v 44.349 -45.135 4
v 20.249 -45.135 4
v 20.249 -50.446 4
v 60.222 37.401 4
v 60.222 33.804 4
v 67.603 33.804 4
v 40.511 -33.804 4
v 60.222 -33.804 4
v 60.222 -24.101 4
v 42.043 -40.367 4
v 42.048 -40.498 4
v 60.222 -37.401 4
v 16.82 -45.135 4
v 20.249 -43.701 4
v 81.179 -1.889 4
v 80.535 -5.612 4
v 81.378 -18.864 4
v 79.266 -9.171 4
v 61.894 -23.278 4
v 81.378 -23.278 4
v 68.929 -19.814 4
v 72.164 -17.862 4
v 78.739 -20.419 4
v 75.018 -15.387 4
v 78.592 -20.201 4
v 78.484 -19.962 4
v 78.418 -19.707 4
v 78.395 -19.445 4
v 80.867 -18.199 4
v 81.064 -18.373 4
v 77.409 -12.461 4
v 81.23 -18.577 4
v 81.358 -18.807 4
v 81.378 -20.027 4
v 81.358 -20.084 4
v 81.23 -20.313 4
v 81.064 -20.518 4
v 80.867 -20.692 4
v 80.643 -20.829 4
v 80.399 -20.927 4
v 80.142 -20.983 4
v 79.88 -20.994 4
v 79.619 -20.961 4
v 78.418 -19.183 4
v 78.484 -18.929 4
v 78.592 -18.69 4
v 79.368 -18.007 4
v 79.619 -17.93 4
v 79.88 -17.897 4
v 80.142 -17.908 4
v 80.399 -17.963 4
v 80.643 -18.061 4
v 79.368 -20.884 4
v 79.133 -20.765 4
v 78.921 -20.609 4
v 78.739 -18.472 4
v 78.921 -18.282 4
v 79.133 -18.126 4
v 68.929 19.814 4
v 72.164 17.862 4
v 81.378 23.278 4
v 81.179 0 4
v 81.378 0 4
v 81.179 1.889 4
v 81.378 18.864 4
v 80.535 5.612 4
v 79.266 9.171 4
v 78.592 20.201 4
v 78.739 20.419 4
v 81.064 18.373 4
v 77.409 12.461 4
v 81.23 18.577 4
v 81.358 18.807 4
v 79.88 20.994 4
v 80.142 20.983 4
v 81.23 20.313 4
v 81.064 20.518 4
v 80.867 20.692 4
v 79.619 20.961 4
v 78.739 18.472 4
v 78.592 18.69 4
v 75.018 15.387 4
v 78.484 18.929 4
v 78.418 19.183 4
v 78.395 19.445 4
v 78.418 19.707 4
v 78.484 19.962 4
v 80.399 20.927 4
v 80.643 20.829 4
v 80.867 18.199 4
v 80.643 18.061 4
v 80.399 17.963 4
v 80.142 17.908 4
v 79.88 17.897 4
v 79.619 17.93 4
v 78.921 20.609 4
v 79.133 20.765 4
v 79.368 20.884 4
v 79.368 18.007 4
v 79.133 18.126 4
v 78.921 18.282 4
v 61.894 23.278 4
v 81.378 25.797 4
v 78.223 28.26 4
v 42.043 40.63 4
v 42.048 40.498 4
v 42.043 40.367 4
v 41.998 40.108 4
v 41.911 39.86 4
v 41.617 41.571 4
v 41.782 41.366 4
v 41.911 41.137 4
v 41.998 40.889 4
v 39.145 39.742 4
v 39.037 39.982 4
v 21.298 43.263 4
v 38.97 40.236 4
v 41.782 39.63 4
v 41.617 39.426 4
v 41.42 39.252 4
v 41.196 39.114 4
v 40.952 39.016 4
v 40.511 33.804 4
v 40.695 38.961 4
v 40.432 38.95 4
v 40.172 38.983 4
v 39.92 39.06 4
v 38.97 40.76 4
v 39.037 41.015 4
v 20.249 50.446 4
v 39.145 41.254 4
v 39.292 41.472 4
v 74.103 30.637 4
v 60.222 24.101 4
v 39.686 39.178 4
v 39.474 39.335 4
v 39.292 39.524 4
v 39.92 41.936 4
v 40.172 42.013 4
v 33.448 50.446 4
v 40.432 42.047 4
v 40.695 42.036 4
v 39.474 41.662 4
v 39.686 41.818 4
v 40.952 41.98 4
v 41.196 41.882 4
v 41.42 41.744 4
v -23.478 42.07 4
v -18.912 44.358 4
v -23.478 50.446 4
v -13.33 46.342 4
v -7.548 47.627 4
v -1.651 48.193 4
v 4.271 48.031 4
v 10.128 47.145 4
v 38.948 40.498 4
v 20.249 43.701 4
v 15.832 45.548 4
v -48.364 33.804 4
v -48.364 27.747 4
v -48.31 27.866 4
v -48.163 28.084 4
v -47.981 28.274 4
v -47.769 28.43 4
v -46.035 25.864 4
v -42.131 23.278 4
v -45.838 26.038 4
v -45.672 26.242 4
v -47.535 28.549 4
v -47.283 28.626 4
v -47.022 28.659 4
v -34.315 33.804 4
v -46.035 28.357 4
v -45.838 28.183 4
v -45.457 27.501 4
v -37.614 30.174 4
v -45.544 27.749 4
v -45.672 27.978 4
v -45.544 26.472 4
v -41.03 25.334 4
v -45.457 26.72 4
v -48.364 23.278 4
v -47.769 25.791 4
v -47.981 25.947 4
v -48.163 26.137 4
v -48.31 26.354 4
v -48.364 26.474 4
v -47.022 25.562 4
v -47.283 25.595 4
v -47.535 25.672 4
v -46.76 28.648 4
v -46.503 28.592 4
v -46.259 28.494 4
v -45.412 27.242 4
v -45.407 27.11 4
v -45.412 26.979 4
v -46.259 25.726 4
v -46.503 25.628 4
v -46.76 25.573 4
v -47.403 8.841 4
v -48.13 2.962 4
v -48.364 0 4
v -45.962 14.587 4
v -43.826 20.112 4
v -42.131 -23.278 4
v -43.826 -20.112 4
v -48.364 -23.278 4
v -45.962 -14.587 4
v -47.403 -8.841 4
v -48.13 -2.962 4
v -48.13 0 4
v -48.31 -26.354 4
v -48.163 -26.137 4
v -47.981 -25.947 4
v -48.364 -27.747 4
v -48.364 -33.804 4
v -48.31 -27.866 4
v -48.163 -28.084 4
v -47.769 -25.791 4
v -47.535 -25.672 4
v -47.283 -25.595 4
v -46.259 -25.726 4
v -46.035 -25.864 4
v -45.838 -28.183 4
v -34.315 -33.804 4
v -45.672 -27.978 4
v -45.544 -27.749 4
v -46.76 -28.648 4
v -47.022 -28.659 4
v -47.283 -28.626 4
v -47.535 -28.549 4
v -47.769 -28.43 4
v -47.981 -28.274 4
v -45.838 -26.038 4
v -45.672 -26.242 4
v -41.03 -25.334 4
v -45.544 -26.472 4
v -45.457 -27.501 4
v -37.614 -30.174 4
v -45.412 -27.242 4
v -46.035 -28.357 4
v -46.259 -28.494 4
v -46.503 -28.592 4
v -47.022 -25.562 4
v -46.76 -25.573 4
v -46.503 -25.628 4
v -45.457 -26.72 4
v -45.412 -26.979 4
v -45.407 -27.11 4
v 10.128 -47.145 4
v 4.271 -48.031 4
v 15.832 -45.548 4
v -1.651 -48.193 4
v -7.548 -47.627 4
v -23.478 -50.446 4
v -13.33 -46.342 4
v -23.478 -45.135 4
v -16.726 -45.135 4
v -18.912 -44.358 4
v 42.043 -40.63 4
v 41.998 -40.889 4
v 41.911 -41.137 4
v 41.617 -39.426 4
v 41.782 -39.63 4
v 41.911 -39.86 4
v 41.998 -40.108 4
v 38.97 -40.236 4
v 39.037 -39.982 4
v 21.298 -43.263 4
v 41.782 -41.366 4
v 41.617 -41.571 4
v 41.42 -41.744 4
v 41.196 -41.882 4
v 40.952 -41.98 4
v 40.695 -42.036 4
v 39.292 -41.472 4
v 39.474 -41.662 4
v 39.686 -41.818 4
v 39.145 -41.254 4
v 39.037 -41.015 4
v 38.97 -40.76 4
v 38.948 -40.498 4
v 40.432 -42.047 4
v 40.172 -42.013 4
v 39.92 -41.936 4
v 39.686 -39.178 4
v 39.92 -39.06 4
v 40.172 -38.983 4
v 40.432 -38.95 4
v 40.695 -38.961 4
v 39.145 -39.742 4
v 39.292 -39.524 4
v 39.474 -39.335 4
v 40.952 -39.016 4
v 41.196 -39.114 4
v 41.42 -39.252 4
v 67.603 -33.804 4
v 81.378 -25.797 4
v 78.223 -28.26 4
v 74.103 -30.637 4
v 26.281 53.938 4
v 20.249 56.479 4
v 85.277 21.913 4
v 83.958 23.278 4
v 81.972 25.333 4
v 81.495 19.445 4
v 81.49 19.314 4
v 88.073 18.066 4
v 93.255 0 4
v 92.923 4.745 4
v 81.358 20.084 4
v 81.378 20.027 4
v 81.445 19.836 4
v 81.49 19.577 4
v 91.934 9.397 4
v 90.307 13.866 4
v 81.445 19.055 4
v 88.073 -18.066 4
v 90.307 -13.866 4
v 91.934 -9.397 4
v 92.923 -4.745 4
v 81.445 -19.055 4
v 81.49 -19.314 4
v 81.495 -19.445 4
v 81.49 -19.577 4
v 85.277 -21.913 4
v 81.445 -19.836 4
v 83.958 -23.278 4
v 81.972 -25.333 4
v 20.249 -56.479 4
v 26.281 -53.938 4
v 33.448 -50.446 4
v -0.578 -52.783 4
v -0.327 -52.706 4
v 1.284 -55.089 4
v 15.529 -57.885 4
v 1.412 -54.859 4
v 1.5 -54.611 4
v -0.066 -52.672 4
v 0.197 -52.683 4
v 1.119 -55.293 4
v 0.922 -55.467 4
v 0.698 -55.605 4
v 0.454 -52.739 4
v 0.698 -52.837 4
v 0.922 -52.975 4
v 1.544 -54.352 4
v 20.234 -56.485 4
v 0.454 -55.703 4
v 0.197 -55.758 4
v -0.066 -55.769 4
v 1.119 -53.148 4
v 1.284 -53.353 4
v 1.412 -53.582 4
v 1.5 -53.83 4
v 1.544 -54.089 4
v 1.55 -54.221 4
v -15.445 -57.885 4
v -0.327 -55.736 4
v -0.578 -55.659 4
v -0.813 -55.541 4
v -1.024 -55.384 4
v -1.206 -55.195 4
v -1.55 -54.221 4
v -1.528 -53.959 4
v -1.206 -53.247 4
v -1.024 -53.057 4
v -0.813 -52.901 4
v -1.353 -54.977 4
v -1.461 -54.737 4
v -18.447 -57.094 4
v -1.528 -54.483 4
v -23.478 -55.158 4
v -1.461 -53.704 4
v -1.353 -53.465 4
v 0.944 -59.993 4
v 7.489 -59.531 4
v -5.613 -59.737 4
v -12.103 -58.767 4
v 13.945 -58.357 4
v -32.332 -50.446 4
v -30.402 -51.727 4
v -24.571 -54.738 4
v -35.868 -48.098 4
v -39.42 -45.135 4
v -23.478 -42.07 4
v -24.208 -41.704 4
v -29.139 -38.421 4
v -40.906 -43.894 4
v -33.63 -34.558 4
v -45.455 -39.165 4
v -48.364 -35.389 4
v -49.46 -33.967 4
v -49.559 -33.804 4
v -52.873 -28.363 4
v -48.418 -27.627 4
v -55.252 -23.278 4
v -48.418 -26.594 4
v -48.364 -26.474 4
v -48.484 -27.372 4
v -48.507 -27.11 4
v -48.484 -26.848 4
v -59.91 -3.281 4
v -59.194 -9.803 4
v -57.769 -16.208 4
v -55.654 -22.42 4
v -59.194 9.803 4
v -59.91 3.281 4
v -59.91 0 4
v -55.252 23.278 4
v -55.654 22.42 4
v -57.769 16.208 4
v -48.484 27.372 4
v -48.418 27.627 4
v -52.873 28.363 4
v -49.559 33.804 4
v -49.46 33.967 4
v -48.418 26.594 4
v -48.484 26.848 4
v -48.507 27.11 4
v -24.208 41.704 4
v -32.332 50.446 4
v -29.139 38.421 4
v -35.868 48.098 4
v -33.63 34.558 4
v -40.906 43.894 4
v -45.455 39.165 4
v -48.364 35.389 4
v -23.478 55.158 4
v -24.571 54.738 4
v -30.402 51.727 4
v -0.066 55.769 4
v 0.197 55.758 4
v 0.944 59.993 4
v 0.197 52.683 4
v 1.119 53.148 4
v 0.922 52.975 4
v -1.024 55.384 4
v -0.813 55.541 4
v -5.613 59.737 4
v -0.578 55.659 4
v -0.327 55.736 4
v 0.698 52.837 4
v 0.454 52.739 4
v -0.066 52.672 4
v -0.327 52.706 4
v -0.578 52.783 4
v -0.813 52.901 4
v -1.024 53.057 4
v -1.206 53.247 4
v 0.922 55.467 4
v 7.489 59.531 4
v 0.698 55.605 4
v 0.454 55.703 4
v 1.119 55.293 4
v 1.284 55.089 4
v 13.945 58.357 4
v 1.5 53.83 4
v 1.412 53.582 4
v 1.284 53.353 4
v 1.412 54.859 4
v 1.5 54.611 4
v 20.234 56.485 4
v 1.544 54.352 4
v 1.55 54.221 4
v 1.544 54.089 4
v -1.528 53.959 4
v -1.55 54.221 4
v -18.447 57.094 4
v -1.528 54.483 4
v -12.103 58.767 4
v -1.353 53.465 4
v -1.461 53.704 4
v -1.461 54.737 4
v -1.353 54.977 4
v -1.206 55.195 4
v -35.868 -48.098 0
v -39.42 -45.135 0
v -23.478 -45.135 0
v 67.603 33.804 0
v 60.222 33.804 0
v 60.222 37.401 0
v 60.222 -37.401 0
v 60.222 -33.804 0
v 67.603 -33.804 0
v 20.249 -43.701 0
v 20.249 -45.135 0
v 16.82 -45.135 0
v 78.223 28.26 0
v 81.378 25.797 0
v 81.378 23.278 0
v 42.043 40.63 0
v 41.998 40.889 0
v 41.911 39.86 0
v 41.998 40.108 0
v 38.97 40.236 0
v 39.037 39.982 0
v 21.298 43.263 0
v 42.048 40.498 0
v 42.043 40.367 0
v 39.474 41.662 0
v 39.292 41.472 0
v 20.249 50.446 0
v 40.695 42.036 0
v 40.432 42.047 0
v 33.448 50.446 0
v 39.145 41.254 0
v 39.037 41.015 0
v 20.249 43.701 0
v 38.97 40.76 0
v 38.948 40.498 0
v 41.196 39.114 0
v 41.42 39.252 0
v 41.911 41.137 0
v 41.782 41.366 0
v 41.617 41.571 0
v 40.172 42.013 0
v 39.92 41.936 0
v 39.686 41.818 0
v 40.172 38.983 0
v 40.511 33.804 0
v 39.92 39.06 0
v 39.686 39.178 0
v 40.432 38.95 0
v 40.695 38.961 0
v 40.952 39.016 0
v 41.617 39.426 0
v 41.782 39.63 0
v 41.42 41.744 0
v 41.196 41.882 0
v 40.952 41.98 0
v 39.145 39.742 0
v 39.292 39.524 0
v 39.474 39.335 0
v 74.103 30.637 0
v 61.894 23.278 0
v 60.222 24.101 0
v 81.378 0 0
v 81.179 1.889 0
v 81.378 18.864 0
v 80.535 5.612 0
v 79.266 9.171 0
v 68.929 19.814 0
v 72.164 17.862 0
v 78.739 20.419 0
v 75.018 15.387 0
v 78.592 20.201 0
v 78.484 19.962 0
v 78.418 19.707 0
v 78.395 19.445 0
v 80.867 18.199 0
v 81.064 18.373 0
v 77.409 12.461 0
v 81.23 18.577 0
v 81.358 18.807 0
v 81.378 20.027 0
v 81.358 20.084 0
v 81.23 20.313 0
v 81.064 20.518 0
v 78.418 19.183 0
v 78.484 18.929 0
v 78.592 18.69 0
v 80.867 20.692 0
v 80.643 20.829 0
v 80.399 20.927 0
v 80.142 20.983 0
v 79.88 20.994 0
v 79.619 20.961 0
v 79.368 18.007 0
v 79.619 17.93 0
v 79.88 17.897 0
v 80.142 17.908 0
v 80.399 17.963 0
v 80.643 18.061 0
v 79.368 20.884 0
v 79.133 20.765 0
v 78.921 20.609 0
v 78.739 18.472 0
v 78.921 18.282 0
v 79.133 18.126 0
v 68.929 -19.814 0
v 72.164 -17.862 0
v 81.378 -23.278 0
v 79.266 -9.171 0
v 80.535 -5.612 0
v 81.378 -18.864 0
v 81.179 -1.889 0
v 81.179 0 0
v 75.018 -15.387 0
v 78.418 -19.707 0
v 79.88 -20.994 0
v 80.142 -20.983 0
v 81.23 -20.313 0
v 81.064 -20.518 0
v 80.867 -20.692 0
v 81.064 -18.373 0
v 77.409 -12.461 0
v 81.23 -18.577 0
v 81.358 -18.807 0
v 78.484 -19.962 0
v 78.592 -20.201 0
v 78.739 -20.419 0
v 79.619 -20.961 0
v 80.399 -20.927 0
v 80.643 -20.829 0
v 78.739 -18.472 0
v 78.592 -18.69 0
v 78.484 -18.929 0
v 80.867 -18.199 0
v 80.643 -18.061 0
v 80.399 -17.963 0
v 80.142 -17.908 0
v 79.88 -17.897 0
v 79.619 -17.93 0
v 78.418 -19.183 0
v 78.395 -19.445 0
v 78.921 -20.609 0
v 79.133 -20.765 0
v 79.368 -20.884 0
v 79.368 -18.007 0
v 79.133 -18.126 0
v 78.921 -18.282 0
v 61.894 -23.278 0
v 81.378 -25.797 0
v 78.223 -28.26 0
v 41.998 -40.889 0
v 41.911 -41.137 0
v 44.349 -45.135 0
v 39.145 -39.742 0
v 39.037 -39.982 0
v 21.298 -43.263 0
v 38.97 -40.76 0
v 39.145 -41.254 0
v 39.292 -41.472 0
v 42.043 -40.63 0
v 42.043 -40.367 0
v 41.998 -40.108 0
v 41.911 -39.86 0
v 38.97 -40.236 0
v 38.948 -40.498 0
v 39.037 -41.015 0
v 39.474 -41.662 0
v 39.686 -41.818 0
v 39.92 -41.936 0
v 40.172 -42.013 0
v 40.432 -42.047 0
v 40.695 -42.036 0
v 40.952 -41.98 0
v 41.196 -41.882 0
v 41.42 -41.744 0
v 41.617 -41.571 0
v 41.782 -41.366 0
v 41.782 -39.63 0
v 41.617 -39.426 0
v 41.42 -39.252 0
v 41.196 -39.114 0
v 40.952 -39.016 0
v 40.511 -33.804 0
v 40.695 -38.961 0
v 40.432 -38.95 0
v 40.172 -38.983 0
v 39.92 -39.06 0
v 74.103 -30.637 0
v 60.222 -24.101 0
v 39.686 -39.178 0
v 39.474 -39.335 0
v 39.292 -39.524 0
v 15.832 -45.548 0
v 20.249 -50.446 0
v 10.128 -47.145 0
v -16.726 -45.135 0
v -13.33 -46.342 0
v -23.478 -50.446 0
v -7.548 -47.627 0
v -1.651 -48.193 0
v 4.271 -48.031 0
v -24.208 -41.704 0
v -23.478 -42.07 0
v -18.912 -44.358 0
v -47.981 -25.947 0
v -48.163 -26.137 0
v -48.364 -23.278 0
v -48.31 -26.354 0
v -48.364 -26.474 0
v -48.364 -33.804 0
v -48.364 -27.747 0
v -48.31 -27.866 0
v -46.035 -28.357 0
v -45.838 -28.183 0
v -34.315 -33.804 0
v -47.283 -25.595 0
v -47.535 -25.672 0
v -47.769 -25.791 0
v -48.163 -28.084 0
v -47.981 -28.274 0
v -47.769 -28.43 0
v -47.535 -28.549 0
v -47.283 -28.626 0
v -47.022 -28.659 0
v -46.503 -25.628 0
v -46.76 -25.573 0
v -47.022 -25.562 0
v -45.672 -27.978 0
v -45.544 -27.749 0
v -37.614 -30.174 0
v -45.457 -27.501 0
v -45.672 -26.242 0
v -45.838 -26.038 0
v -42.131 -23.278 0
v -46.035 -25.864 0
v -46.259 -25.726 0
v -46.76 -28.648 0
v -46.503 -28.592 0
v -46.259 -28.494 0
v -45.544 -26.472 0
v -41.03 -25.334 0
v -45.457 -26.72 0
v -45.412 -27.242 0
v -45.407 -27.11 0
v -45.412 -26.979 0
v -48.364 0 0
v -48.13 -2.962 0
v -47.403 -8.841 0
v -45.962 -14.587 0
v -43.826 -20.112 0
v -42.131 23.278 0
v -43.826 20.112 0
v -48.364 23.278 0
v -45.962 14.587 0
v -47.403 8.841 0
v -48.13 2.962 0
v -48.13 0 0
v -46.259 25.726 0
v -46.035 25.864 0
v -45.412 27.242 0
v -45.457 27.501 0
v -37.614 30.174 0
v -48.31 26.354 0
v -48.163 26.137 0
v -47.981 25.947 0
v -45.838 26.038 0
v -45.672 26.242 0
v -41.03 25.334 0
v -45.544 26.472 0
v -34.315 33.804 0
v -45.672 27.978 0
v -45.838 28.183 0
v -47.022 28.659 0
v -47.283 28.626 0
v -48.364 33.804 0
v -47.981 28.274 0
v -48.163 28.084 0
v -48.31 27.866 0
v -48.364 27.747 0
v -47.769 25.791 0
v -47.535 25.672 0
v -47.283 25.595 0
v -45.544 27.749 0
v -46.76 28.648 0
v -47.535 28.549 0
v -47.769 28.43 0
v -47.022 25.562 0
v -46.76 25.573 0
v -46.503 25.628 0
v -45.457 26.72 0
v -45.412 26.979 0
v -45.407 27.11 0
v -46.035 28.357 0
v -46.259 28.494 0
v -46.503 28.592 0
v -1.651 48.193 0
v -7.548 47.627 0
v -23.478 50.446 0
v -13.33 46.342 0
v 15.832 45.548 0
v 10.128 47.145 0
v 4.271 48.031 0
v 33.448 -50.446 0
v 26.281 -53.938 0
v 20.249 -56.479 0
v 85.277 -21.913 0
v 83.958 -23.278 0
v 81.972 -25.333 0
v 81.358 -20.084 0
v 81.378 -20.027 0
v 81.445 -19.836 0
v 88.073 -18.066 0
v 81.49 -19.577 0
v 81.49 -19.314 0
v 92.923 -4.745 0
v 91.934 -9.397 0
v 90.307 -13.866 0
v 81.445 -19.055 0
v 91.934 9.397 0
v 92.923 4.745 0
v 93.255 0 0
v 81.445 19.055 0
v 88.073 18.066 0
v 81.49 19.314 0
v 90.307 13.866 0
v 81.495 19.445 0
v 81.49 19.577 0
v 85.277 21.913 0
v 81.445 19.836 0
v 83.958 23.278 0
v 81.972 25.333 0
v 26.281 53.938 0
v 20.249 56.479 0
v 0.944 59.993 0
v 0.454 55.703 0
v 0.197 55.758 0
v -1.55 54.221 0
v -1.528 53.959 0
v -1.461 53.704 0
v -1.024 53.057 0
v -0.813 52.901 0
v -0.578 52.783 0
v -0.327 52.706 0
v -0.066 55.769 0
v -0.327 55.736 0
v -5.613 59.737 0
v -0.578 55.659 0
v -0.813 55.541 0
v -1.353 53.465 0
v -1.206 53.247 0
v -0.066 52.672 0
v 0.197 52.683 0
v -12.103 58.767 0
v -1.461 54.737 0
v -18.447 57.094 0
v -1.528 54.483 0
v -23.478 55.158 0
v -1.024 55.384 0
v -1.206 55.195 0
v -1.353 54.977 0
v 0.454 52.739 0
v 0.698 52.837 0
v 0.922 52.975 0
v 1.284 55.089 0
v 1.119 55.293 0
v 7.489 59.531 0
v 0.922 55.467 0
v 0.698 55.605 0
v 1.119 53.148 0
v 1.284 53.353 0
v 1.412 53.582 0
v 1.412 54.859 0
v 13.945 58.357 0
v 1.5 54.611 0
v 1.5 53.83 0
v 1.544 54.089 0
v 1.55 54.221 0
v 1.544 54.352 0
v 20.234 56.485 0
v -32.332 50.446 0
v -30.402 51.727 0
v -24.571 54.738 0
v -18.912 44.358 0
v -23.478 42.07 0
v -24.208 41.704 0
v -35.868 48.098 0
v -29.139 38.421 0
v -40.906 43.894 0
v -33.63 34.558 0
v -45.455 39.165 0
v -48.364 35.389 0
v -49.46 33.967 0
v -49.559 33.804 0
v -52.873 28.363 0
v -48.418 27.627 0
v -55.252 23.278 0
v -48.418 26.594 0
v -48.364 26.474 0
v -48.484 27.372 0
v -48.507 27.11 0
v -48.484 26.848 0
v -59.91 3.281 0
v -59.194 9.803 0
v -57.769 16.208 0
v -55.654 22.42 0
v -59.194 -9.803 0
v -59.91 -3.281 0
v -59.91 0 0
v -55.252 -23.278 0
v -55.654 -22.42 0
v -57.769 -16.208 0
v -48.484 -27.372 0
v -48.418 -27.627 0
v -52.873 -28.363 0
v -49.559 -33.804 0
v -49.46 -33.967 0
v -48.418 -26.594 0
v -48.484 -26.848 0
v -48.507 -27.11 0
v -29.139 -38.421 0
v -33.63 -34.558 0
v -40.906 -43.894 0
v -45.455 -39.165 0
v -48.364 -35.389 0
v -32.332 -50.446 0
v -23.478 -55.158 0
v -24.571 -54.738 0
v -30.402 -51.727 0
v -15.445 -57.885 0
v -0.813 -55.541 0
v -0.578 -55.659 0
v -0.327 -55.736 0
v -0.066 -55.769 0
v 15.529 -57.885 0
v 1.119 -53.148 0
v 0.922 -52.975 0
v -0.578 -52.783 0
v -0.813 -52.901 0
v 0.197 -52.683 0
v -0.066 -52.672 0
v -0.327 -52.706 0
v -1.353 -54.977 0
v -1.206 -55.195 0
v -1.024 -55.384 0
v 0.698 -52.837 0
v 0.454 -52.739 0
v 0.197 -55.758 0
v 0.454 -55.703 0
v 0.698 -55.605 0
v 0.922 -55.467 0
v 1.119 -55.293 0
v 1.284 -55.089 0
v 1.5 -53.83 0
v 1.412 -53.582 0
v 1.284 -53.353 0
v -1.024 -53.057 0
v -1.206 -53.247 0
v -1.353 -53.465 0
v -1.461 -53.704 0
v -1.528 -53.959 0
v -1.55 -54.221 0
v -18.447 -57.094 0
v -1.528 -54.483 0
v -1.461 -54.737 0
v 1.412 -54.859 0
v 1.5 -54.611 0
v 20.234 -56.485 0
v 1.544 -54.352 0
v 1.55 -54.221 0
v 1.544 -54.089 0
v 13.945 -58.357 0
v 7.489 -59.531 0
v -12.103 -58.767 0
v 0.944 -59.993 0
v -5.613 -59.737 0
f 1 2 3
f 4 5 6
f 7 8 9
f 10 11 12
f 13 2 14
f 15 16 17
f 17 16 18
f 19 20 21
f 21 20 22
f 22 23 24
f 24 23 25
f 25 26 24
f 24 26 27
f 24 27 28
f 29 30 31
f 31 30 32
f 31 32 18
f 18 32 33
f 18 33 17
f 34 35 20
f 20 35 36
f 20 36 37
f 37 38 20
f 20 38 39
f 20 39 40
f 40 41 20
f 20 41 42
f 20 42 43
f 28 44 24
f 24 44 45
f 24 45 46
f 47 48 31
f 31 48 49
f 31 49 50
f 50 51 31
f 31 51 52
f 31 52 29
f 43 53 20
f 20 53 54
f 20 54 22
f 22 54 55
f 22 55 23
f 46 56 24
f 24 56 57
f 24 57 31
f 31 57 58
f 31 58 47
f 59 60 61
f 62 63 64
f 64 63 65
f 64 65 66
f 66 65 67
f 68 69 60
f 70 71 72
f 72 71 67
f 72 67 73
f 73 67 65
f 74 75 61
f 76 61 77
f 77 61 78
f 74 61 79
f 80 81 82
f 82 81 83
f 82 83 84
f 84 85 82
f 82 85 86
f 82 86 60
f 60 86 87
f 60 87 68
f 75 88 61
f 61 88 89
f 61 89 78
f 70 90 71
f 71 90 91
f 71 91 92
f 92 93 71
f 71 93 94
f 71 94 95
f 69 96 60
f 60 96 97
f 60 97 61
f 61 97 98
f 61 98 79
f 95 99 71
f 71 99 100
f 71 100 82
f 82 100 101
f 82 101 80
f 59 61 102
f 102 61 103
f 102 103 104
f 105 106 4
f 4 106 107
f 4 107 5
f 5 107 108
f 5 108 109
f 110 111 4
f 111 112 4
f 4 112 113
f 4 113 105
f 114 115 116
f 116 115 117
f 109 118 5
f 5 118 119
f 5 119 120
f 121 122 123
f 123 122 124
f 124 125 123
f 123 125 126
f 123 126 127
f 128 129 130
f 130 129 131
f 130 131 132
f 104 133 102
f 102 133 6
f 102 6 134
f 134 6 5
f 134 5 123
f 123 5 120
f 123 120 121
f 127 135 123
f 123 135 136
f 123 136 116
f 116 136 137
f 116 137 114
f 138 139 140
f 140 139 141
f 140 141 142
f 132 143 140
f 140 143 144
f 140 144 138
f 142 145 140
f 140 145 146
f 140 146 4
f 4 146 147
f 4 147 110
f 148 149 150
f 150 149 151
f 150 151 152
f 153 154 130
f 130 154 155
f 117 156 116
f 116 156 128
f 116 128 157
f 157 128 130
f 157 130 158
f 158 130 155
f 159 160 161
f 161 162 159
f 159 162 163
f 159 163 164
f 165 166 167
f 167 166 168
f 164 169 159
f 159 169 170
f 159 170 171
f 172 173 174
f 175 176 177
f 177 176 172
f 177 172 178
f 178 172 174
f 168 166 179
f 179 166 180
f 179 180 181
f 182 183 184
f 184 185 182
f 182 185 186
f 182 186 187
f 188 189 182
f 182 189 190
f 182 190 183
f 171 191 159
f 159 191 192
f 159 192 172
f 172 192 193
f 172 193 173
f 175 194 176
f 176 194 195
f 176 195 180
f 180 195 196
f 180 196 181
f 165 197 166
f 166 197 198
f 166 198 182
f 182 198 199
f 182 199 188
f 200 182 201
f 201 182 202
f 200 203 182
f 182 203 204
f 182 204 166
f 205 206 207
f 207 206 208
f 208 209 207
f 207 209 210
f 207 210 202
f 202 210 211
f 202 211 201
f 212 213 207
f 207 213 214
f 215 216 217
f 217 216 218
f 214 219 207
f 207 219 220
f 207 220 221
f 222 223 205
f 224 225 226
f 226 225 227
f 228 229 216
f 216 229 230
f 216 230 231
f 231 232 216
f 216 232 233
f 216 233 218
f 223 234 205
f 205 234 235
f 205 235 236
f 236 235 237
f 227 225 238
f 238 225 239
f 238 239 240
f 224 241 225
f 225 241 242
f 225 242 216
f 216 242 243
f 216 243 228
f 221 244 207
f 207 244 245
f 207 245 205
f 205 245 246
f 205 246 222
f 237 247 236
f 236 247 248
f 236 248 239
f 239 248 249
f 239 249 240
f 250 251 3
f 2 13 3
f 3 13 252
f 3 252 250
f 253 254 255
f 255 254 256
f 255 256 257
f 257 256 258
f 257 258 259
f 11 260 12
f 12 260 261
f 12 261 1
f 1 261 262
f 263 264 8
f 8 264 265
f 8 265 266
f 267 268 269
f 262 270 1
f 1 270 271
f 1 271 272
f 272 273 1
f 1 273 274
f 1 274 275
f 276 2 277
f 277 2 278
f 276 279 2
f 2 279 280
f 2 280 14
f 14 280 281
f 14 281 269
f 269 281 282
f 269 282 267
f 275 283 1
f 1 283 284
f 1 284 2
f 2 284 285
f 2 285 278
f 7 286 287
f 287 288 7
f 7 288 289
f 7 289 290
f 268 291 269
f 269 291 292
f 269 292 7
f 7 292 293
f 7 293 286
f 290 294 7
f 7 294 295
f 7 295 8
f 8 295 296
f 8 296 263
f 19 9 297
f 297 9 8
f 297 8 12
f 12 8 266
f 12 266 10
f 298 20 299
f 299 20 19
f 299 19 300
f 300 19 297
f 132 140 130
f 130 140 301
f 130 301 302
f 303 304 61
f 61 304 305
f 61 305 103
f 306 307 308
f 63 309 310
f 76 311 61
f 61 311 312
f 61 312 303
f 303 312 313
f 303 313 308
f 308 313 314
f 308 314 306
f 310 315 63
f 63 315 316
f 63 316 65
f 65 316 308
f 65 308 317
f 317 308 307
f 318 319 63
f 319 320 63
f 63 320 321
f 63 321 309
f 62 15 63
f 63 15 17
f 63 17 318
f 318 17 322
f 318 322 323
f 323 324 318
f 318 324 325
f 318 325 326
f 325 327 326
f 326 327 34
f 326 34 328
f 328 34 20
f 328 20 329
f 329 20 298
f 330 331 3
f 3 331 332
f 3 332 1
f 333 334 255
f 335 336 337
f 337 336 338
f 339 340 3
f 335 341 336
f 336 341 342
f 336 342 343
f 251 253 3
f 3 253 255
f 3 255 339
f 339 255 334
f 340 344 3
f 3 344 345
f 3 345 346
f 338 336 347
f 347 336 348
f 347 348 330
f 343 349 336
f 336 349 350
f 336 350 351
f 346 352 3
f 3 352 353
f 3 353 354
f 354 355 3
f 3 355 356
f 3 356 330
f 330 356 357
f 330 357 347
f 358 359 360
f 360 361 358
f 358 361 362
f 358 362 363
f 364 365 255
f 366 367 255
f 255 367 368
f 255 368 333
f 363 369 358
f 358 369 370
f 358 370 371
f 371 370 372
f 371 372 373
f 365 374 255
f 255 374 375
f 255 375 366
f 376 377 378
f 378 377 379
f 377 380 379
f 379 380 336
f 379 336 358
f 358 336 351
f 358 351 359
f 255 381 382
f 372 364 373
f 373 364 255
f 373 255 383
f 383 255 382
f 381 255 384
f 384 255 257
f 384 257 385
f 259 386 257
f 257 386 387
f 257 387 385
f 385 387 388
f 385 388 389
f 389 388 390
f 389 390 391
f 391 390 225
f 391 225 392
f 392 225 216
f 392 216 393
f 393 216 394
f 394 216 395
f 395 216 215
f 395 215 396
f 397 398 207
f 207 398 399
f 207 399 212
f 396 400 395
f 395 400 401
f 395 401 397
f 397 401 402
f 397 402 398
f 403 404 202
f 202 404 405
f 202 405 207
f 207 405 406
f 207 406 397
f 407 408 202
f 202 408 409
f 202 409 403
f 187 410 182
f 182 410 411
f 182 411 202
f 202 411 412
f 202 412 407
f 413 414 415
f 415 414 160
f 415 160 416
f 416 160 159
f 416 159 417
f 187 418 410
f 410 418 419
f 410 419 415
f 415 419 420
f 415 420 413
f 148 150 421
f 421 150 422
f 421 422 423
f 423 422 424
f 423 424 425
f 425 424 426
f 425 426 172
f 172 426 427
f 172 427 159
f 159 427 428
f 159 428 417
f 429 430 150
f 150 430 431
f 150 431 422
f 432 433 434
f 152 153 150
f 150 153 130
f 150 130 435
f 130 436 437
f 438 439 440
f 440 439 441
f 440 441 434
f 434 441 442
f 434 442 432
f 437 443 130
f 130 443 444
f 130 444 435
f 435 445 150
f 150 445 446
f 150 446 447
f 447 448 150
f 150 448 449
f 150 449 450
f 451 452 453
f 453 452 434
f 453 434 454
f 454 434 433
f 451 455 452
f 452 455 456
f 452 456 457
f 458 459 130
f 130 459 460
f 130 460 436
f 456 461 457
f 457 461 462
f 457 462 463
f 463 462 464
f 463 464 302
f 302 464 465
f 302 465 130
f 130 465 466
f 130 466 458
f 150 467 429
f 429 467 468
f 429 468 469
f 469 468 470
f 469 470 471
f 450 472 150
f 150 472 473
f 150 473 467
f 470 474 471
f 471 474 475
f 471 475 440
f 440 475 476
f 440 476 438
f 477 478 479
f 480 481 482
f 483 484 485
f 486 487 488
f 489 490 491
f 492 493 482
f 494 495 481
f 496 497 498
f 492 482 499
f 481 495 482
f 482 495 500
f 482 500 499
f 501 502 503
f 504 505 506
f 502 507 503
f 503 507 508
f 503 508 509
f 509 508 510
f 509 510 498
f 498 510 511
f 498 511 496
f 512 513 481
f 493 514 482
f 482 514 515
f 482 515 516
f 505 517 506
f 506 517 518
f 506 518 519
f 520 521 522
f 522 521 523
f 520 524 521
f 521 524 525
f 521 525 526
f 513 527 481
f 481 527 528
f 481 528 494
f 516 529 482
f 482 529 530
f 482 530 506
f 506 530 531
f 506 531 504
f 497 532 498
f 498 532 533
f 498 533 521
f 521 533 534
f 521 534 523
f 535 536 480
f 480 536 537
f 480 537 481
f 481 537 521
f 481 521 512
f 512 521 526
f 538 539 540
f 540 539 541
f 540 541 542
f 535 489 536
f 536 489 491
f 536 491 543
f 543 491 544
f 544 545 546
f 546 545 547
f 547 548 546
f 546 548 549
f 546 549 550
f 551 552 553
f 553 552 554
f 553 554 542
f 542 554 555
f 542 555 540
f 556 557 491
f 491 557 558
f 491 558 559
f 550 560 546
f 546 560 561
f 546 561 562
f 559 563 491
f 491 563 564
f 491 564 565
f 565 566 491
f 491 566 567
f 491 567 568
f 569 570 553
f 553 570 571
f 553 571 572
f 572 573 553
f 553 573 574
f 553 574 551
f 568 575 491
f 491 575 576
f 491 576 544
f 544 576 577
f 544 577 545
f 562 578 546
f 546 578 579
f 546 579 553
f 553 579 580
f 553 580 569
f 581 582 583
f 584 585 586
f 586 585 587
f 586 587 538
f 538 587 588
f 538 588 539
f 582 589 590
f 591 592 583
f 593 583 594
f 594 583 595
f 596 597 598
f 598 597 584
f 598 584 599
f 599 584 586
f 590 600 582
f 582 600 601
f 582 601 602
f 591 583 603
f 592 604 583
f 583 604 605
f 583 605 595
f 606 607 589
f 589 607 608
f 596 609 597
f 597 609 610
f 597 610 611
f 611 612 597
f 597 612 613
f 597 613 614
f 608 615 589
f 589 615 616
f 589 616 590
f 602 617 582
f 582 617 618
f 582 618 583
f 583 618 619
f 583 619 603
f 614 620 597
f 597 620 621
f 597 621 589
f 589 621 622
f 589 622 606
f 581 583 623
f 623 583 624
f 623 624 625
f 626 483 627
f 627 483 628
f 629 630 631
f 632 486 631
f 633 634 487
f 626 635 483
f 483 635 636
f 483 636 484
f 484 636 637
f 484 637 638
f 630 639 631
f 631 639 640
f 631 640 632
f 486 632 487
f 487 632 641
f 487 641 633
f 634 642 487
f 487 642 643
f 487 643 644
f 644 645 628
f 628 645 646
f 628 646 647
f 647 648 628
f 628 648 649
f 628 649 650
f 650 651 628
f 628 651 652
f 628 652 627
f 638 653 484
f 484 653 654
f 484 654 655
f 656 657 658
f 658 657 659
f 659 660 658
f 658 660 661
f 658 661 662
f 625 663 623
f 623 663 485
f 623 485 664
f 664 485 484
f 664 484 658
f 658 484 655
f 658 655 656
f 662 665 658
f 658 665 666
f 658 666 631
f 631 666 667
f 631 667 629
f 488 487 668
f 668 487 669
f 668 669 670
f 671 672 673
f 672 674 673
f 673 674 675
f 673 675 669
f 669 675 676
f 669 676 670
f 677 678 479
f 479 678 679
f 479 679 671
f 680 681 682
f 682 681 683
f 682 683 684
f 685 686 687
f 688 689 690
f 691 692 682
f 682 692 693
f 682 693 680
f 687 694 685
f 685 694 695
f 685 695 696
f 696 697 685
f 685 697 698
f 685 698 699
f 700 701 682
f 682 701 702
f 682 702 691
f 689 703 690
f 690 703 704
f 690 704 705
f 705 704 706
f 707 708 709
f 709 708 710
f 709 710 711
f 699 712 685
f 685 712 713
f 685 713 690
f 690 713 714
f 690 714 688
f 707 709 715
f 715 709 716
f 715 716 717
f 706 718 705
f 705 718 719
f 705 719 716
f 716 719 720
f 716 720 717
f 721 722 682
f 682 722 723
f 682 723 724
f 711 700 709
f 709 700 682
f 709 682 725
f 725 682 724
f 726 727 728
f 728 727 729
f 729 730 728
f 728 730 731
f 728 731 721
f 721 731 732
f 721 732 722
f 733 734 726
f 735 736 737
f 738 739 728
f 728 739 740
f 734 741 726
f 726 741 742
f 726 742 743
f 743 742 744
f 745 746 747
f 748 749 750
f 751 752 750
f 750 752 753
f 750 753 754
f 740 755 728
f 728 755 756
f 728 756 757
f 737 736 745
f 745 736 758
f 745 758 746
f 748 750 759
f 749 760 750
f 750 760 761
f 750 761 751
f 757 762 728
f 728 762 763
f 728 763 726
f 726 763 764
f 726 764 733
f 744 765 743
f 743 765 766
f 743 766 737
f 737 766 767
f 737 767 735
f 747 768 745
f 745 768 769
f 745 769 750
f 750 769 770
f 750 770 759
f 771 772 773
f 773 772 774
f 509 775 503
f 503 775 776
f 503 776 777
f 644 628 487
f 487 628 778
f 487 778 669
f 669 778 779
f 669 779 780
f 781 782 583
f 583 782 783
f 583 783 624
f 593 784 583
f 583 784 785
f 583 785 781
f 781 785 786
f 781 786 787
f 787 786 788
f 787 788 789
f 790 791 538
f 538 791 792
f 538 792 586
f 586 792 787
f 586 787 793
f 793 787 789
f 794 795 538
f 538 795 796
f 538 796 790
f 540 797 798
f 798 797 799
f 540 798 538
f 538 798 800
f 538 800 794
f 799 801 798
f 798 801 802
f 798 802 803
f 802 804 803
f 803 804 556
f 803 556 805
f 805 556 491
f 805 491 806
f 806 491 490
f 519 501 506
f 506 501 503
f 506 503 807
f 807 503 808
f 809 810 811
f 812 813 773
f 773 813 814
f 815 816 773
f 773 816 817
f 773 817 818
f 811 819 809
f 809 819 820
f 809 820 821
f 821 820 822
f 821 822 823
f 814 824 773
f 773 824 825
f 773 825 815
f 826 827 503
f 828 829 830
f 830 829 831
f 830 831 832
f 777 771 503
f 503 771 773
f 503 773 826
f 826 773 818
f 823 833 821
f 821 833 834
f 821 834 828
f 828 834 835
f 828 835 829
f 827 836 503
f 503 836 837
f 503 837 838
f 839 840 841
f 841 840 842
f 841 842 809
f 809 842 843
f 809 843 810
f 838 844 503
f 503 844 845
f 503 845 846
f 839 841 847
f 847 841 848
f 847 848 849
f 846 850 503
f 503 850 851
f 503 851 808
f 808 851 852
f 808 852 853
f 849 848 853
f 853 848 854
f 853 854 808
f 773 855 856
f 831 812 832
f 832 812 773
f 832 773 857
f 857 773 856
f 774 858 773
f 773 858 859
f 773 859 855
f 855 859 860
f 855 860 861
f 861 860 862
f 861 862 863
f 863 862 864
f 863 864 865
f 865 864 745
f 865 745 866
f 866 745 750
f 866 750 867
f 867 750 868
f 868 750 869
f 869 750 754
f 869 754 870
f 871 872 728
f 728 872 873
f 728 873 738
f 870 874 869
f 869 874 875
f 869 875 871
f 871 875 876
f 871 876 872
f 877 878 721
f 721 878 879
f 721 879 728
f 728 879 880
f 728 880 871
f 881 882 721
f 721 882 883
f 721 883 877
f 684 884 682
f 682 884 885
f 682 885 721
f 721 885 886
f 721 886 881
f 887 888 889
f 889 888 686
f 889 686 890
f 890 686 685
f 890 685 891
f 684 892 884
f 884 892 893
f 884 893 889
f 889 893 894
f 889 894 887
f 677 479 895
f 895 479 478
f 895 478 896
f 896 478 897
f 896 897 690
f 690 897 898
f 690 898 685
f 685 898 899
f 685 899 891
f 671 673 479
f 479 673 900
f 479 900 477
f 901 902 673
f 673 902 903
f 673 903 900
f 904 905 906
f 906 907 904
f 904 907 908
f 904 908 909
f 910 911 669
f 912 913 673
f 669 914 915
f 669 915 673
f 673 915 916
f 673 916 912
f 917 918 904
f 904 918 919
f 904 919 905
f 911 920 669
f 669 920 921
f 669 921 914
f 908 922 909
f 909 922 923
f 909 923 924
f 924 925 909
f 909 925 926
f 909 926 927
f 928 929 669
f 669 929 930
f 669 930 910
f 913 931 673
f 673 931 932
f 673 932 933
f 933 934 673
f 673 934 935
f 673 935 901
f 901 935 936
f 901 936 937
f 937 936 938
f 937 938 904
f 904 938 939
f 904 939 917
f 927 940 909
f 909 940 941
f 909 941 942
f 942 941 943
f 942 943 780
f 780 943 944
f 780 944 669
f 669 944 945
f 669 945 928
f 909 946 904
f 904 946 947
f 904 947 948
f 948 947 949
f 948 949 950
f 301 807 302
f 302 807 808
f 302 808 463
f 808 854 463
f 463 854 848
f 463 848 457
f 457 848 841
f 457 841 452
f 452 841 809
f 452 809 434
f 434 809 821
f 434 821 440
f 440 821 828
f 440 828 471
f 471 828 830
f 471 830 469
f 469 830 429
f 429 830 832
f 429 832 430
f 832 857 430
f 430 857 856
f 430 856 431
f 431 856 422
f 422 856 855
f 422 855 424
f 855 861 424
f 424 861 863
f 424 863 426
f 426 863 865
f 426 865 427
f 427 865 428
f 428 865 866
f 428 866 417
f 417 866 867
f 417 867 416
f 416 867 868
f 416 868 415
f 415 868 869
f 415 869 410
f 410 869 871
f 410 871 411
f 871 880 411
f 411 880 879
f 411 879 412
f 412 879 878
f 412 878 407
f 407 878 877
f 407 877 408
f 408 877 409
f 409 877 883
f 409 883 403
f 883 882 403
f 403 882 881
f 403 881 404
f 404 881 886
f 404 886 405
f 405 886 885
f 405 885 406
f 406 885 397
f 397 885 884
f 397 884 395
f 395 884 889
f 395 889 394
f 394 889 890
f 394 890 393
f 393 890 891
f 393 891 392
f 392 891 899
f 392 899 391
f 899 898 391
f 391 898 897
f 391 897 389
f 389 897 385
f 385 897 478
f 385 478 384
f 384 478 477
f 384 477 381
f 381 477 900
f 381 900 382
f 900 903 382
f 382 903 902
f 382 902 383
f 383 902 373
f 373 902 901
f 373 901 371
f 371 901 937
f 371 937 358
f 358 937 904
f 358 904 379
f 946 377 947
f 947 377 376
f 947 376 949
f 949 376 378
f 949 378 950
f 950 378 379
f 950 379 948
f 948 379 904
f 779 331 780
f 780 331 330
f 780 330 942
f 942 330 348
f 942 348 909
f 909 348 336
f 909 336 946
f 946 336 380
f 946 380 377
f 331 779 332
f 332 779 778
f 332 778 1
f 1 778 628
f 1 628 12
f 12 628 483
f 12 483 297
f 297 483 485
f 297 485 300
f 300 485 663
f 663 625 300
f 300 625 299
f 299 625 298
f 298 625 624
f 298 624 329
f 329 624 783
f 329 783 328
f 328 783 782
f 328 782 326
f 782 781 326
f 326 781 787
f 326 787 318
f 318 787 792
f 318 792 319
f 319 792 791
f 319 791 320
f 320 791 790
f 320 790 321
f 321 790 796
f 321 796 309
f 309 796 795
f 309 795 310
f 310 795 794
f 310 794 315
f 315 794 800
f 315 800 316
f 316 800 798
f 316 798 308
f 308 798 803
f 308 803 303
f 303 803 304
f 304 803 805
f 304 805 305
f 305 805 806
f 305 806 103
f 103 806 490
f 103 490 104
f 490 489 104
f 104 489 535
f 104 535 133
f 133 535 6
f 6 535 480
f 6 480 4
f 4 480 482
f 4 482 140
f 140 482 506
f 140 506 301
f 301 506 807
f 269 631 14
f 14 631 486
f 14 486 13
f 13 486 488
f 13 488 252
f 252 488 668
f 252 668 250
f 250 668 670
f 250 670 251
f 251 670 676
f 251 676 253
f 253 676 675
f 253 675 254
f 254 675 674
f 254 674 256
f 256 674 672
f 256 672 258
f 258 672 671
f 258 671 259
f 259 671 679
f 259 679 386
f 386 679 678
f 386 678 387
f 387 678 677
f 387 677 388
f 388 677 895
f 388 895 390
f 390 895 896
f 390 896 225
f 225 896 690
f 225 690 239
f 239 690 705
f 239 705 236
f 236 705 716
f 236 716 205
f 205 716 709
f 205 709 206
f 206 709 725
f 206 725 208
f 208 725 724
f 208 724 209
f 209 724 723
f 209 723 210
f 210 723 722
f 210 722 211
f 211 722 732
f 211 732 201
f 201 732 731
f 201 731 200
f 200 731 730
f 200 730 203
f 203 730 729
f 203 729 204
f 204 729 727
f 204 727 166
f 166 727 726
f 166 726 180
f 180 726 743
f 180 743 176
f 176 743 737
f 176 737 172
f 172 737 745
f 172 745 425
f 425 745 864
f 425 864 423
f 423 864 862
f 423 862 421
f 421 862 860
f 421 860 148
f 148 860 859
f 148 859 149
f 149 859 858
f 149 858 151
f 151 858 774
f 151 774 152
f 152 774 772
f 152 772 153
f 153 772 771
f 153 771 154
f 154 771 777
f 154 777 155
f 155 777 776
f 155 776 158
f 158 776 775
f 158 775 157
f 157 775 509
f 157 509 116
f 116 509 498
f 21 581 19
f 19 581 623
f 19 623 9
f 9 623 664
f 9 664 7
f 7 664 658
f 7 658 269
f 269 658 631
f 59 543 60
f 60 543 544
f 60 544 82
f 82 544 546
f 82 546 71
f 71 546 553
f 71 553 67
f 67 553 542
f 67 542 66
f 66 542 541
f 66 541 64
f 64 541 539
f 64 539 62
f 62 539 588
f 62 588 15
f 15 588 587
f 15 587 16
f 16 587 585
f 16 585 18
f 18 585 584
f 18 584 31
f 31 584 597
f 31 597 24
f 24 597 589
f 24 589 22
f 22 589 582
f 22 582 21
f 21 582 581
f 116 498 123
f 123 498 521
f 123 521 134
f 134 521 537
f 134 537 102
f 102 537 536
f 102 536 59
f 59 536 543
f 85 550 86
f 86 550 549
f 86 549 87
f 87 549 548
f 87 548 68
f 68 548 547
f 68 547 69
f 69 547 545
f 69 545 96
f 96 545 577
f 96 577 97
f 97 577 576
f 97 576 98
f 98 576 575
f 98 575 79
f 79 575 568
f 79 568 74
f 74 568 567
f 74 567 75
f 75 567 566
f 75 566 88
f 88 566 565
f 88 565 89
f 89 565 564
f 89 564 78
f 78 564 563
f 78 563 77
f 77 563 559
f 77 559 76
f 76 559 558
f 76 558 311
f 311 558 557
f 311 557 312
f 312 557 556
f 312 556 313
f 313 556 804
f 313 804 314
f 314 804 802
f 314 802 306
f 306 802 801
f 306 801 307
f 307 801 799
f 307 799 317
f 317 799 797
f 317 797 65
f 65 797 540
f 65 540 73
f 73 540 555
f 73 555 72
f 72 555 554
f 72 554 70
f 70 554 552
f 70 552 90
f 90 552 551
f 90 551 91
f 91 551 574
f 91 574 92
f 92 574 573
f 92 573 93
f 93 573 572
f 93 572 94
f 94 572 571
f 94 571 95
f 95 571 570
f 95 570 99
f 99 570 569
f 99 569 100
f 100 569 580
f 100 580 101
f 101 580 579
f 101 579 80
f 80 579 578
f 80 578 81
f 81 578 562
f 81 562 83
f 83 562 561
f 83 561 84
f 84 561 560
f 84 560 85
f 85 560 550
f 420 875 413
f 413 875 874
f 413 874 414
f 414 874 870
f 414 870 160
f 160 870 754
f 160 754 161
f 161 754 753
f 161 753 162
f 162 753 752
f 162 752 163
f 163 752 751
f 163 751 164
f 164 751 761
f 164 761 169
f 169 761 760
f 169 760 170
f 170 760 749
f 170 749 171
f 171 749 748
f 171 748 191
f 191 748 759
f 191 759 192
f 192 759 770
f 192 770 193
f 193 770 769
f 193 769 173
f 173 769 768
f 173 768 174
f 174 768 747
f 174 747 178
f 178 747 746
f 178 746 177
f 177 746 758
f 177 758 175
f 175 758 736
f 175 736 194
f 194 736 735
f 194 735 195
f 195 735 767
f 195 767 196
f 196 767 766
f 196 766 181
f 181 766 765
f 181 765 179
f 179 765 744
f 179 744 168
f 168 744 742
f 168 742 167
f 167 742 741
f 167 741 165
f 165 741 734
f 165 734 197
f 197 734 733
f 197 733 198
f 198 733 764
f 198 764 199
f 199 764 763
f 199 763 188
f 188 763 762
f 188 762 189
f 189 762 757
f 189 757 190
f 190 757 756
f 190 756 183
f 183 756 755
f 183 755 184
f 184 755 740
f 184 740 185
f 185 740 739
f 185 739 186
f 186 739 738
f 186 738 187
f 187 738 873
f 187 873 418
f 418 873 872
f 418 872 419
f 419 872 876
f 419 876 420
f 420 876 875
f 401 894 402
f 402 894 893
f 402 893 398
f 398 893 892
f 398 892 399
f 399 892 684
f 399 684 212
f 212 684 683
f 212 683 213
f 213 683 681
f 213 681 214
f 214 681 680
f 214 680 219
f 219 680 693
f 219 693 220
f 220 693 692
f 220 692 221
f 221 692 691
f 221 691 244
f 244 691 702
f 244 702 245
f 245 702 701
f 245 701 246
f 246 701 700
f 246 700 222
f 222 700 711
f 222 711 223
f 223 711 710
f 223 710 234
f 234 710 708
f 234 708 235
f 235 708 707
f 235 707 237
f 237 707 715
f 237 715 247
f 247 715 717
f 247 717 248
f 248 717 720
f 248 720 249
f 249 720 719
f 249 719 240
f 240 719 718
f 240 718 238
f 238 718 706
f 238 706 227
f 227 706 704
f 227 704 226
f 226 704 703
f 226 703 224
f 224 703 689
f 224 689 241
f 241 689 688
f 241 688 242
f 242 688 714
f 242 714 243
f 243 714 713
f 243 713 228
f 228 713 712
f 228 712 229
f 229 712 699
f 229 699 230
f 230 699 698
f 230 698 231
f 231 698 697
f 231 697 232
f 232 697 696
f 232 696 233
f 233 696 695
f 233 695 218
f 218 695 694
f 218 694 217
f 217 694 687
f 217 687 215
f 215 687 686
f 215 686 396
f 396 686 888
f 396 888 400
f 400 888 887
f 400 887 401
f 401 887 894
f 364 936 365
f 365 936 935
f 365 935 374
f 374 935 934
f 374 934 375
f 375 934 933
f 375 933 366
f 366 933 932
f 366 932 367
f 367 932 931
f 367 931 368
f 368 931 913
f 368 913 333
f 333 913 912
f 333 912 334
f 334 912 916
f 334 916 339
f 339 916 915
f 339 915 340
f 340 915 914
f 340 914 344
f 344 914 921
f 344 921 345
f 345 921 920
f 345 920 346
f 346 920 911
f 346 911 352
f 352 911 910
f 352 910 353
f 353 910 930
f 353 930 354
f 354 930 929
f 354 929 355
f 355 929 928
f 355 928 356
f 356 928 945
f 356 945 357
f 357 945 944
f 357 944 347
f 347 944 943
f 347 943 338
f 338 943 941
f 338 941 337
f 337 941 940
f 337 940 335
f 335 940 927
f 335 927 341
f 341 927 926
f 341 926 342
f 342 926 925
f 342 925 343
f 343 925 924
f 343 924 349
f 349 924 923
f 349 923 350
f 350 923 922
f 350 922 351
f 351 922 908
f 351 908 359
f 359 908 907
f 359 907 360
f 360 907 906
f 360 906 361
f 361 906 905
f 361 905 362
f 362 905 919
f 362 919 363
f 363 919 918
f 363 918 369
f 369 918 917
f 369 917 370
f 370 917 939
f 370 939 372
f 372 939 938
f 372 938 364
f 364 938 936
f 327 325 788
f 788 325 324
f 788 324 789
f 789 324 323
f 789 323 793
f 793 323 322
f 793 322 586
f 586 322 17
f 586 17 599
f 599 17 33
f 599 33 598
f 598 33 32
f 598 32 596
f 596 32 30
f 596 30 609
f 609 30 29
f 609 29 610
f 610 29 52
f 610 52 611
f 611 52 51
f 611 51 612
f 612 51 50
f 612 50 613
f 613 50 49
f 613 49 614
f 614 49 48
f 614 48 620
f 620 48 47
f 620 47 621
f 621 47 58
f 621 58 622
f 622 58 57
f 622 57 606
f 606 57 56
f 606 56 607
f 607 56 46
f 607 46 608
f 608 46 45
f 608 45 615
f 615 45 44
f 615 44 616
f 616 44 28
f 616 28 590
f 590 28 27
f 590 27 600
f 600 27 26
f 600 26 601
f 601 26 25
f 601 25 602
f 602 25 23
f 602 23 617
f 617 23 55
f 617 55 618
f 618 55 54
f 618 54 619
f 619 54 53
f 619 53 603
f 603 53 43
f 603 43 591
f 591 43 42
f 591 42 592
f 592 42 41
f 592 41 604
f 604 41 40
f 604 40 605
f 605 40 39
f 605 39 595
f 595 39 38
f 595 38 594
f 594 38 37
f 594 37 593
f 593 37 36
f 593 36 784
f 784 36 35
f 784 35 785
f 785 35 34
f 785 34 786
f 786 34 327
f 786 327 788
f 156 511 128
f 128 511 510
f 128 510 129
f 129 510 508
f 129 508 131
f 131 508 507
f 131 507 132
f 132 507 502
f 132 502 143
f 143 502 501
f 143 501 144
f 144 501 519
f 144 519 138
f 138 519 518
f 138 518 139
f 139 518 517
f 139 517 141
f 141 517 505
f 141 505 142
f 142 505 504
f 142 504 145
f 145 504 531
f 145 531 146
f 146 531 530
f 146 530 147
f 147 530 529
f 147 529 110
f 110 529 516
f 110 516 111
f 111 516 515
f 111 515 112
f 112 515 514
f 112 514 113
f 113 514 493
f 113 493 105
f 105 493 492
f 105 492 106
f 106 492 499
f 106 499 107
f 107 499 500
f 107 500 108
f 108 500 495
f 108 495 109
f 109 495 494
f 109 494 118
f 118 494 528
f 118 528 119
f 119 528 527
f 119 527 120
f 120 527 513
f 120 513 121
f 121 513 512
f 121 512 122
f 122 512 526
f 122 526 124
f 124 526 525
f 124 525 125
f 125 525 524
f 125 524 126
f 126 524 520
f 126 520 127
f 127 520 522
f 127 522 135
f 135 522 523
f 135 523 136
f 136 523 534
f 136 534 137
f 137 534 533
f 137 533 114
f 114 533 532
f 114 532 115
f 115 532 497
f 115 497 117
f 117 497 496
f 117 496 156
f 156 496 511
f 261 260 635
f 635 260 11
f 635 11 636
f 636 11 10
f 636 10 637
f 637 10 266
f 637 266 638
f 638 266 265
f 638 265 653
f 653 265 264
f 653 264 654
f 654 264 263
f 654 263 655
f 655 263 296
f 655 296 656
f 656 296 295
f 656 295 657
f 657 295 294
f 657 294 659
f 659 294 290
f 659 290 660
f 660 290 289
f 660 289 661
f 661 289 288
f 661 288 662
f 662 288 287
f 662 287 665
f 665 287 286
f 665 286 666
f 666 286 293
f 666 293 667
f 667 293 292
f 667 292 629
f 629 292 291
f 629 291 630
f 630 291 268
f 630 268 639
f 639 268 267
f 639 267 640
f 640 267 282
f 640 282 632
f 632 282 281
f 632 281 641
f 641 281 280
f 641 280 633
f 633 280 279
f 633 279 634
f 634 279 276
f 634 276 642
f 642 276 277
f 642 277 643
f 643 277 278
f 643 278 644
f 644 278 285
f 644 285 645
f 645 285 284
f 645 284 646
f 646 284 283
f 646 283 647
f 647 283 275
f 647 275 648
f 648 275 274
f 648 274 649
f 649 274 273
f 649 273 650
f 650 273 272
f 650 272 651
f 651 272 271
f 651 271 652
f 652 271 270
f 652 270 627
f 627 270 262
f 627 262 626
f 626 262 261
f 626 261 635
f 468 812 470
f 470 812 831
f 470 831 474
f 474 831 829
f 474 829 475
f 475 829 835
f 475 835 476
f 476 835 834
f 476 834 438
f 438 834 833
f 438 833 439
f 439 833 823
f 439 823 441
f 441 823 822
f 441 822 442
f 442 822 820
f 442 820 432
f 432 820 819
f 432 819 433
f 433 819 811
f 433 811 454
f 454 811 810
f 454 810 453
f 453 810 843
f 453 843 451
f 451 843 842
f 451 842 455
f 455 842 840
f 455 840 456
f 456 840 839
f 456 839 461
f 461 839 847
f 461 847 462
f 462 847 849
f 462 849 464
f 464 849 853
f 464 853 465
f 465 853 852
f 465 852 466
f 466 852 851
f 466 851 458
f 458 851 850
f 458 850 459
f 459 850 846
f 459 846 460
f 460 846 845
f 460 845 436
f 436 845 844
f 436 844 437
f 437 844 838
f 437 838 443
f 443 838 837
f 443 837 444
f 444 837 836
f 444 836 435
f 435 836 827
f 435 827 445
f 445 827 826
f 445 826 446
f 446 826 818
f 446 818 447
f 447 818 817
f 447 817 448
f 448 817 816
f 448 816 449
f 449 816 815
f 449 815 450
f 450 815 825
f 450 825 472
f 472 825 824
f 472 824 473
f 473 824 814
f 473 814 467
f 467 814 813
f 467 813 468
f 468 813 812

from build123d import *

# Parameters (mm, degrees)
BOSS_EXTRUDE2_DEPTH     = 4
CUT_EXTRUDE4_DEPTH      = 6
CUT_EXTRUDE4_DEPTH_BACK = 111.961995243
SKETCH11_R              = 1.55


with BuildPart() as part:
    # Sketch1 → Boss-Extrude2 (new body)
    with BuildSketch(Plane.XY):
        with BuildLine():
            Line((26.280991736, 53.938015104), (74.102766205, 30.637126906))
            ThreePointArc((74.102766205, 30.637126906), (93.255371901, 0), (74.102766205, -30.637126906))
            Line((74.102766205, -30.637126906), (26.280991736, -53.938015104))
            ThreePointArc((26.280991736, -53.938015104), (-60, 0), (26.280991736, 53.938015104))
        make_face()
        with BuildLine():
            Line((21.297534718, 43.26272971), (68.929300346, 19.81439002))
            ThreePointArc((68.929300346, 19.81439002), (81.260208333, 0), (68.929300346, -19.81439002))
            Line((68.929300346, -19.81439002), (21.297534718, -43.26272971))
            ThreePointArc((21.297534718, -43.26272971), (-48.22083333, 0), (21.297534718, 43.26272971))
        make_face(mode=Mode.SUBTRACT)
    extrude(amount=BOSS_EXTRUDE2_DEPTH)

    # Sketch11 → Cut-Extrude4 (cut, two sides: drawn at the far end of the back side and taken through both)
    with BuildSketch(Plane.XY.offset(4).offset(-CUT_EXTRUDE4_DEPTH_BACK)):
        with Locations((0, 54.22083333)):
            Circle(SKETCH11_R)
        with Locations((-46.956619078, 27.110416665)):
            Circle(SKETCH11_R)
        with Locations((-46.956619078, -27.110416665)):
            Circle(SKETCH11_R)
        with Locations((0, -54.22083333)):
            Circle(SKETCH11_R)
        with Locations((79.945436483, 19.445436483)):
            Circle(SKETCH11_R)
        with Locations((40.498188633, 40.498188633)):
            Circle(SKETCH11_R)
        with Locations(Location((79.945436483, -19.445436483, 0), (0, 0, 180))):
            Circle(SKETCH11_R)
        with Locations(Location((40.498188633, -40.498188633, 0), (0, 0, 180))):
            Circle(SKETCH11_R)
    extrude(amount=CUT_EXTRUDE4_DEPTH + CUT_EXTRUDE4_DEPTH_BACK, mode=Mode.SUBTRACT)


solid = part.part
